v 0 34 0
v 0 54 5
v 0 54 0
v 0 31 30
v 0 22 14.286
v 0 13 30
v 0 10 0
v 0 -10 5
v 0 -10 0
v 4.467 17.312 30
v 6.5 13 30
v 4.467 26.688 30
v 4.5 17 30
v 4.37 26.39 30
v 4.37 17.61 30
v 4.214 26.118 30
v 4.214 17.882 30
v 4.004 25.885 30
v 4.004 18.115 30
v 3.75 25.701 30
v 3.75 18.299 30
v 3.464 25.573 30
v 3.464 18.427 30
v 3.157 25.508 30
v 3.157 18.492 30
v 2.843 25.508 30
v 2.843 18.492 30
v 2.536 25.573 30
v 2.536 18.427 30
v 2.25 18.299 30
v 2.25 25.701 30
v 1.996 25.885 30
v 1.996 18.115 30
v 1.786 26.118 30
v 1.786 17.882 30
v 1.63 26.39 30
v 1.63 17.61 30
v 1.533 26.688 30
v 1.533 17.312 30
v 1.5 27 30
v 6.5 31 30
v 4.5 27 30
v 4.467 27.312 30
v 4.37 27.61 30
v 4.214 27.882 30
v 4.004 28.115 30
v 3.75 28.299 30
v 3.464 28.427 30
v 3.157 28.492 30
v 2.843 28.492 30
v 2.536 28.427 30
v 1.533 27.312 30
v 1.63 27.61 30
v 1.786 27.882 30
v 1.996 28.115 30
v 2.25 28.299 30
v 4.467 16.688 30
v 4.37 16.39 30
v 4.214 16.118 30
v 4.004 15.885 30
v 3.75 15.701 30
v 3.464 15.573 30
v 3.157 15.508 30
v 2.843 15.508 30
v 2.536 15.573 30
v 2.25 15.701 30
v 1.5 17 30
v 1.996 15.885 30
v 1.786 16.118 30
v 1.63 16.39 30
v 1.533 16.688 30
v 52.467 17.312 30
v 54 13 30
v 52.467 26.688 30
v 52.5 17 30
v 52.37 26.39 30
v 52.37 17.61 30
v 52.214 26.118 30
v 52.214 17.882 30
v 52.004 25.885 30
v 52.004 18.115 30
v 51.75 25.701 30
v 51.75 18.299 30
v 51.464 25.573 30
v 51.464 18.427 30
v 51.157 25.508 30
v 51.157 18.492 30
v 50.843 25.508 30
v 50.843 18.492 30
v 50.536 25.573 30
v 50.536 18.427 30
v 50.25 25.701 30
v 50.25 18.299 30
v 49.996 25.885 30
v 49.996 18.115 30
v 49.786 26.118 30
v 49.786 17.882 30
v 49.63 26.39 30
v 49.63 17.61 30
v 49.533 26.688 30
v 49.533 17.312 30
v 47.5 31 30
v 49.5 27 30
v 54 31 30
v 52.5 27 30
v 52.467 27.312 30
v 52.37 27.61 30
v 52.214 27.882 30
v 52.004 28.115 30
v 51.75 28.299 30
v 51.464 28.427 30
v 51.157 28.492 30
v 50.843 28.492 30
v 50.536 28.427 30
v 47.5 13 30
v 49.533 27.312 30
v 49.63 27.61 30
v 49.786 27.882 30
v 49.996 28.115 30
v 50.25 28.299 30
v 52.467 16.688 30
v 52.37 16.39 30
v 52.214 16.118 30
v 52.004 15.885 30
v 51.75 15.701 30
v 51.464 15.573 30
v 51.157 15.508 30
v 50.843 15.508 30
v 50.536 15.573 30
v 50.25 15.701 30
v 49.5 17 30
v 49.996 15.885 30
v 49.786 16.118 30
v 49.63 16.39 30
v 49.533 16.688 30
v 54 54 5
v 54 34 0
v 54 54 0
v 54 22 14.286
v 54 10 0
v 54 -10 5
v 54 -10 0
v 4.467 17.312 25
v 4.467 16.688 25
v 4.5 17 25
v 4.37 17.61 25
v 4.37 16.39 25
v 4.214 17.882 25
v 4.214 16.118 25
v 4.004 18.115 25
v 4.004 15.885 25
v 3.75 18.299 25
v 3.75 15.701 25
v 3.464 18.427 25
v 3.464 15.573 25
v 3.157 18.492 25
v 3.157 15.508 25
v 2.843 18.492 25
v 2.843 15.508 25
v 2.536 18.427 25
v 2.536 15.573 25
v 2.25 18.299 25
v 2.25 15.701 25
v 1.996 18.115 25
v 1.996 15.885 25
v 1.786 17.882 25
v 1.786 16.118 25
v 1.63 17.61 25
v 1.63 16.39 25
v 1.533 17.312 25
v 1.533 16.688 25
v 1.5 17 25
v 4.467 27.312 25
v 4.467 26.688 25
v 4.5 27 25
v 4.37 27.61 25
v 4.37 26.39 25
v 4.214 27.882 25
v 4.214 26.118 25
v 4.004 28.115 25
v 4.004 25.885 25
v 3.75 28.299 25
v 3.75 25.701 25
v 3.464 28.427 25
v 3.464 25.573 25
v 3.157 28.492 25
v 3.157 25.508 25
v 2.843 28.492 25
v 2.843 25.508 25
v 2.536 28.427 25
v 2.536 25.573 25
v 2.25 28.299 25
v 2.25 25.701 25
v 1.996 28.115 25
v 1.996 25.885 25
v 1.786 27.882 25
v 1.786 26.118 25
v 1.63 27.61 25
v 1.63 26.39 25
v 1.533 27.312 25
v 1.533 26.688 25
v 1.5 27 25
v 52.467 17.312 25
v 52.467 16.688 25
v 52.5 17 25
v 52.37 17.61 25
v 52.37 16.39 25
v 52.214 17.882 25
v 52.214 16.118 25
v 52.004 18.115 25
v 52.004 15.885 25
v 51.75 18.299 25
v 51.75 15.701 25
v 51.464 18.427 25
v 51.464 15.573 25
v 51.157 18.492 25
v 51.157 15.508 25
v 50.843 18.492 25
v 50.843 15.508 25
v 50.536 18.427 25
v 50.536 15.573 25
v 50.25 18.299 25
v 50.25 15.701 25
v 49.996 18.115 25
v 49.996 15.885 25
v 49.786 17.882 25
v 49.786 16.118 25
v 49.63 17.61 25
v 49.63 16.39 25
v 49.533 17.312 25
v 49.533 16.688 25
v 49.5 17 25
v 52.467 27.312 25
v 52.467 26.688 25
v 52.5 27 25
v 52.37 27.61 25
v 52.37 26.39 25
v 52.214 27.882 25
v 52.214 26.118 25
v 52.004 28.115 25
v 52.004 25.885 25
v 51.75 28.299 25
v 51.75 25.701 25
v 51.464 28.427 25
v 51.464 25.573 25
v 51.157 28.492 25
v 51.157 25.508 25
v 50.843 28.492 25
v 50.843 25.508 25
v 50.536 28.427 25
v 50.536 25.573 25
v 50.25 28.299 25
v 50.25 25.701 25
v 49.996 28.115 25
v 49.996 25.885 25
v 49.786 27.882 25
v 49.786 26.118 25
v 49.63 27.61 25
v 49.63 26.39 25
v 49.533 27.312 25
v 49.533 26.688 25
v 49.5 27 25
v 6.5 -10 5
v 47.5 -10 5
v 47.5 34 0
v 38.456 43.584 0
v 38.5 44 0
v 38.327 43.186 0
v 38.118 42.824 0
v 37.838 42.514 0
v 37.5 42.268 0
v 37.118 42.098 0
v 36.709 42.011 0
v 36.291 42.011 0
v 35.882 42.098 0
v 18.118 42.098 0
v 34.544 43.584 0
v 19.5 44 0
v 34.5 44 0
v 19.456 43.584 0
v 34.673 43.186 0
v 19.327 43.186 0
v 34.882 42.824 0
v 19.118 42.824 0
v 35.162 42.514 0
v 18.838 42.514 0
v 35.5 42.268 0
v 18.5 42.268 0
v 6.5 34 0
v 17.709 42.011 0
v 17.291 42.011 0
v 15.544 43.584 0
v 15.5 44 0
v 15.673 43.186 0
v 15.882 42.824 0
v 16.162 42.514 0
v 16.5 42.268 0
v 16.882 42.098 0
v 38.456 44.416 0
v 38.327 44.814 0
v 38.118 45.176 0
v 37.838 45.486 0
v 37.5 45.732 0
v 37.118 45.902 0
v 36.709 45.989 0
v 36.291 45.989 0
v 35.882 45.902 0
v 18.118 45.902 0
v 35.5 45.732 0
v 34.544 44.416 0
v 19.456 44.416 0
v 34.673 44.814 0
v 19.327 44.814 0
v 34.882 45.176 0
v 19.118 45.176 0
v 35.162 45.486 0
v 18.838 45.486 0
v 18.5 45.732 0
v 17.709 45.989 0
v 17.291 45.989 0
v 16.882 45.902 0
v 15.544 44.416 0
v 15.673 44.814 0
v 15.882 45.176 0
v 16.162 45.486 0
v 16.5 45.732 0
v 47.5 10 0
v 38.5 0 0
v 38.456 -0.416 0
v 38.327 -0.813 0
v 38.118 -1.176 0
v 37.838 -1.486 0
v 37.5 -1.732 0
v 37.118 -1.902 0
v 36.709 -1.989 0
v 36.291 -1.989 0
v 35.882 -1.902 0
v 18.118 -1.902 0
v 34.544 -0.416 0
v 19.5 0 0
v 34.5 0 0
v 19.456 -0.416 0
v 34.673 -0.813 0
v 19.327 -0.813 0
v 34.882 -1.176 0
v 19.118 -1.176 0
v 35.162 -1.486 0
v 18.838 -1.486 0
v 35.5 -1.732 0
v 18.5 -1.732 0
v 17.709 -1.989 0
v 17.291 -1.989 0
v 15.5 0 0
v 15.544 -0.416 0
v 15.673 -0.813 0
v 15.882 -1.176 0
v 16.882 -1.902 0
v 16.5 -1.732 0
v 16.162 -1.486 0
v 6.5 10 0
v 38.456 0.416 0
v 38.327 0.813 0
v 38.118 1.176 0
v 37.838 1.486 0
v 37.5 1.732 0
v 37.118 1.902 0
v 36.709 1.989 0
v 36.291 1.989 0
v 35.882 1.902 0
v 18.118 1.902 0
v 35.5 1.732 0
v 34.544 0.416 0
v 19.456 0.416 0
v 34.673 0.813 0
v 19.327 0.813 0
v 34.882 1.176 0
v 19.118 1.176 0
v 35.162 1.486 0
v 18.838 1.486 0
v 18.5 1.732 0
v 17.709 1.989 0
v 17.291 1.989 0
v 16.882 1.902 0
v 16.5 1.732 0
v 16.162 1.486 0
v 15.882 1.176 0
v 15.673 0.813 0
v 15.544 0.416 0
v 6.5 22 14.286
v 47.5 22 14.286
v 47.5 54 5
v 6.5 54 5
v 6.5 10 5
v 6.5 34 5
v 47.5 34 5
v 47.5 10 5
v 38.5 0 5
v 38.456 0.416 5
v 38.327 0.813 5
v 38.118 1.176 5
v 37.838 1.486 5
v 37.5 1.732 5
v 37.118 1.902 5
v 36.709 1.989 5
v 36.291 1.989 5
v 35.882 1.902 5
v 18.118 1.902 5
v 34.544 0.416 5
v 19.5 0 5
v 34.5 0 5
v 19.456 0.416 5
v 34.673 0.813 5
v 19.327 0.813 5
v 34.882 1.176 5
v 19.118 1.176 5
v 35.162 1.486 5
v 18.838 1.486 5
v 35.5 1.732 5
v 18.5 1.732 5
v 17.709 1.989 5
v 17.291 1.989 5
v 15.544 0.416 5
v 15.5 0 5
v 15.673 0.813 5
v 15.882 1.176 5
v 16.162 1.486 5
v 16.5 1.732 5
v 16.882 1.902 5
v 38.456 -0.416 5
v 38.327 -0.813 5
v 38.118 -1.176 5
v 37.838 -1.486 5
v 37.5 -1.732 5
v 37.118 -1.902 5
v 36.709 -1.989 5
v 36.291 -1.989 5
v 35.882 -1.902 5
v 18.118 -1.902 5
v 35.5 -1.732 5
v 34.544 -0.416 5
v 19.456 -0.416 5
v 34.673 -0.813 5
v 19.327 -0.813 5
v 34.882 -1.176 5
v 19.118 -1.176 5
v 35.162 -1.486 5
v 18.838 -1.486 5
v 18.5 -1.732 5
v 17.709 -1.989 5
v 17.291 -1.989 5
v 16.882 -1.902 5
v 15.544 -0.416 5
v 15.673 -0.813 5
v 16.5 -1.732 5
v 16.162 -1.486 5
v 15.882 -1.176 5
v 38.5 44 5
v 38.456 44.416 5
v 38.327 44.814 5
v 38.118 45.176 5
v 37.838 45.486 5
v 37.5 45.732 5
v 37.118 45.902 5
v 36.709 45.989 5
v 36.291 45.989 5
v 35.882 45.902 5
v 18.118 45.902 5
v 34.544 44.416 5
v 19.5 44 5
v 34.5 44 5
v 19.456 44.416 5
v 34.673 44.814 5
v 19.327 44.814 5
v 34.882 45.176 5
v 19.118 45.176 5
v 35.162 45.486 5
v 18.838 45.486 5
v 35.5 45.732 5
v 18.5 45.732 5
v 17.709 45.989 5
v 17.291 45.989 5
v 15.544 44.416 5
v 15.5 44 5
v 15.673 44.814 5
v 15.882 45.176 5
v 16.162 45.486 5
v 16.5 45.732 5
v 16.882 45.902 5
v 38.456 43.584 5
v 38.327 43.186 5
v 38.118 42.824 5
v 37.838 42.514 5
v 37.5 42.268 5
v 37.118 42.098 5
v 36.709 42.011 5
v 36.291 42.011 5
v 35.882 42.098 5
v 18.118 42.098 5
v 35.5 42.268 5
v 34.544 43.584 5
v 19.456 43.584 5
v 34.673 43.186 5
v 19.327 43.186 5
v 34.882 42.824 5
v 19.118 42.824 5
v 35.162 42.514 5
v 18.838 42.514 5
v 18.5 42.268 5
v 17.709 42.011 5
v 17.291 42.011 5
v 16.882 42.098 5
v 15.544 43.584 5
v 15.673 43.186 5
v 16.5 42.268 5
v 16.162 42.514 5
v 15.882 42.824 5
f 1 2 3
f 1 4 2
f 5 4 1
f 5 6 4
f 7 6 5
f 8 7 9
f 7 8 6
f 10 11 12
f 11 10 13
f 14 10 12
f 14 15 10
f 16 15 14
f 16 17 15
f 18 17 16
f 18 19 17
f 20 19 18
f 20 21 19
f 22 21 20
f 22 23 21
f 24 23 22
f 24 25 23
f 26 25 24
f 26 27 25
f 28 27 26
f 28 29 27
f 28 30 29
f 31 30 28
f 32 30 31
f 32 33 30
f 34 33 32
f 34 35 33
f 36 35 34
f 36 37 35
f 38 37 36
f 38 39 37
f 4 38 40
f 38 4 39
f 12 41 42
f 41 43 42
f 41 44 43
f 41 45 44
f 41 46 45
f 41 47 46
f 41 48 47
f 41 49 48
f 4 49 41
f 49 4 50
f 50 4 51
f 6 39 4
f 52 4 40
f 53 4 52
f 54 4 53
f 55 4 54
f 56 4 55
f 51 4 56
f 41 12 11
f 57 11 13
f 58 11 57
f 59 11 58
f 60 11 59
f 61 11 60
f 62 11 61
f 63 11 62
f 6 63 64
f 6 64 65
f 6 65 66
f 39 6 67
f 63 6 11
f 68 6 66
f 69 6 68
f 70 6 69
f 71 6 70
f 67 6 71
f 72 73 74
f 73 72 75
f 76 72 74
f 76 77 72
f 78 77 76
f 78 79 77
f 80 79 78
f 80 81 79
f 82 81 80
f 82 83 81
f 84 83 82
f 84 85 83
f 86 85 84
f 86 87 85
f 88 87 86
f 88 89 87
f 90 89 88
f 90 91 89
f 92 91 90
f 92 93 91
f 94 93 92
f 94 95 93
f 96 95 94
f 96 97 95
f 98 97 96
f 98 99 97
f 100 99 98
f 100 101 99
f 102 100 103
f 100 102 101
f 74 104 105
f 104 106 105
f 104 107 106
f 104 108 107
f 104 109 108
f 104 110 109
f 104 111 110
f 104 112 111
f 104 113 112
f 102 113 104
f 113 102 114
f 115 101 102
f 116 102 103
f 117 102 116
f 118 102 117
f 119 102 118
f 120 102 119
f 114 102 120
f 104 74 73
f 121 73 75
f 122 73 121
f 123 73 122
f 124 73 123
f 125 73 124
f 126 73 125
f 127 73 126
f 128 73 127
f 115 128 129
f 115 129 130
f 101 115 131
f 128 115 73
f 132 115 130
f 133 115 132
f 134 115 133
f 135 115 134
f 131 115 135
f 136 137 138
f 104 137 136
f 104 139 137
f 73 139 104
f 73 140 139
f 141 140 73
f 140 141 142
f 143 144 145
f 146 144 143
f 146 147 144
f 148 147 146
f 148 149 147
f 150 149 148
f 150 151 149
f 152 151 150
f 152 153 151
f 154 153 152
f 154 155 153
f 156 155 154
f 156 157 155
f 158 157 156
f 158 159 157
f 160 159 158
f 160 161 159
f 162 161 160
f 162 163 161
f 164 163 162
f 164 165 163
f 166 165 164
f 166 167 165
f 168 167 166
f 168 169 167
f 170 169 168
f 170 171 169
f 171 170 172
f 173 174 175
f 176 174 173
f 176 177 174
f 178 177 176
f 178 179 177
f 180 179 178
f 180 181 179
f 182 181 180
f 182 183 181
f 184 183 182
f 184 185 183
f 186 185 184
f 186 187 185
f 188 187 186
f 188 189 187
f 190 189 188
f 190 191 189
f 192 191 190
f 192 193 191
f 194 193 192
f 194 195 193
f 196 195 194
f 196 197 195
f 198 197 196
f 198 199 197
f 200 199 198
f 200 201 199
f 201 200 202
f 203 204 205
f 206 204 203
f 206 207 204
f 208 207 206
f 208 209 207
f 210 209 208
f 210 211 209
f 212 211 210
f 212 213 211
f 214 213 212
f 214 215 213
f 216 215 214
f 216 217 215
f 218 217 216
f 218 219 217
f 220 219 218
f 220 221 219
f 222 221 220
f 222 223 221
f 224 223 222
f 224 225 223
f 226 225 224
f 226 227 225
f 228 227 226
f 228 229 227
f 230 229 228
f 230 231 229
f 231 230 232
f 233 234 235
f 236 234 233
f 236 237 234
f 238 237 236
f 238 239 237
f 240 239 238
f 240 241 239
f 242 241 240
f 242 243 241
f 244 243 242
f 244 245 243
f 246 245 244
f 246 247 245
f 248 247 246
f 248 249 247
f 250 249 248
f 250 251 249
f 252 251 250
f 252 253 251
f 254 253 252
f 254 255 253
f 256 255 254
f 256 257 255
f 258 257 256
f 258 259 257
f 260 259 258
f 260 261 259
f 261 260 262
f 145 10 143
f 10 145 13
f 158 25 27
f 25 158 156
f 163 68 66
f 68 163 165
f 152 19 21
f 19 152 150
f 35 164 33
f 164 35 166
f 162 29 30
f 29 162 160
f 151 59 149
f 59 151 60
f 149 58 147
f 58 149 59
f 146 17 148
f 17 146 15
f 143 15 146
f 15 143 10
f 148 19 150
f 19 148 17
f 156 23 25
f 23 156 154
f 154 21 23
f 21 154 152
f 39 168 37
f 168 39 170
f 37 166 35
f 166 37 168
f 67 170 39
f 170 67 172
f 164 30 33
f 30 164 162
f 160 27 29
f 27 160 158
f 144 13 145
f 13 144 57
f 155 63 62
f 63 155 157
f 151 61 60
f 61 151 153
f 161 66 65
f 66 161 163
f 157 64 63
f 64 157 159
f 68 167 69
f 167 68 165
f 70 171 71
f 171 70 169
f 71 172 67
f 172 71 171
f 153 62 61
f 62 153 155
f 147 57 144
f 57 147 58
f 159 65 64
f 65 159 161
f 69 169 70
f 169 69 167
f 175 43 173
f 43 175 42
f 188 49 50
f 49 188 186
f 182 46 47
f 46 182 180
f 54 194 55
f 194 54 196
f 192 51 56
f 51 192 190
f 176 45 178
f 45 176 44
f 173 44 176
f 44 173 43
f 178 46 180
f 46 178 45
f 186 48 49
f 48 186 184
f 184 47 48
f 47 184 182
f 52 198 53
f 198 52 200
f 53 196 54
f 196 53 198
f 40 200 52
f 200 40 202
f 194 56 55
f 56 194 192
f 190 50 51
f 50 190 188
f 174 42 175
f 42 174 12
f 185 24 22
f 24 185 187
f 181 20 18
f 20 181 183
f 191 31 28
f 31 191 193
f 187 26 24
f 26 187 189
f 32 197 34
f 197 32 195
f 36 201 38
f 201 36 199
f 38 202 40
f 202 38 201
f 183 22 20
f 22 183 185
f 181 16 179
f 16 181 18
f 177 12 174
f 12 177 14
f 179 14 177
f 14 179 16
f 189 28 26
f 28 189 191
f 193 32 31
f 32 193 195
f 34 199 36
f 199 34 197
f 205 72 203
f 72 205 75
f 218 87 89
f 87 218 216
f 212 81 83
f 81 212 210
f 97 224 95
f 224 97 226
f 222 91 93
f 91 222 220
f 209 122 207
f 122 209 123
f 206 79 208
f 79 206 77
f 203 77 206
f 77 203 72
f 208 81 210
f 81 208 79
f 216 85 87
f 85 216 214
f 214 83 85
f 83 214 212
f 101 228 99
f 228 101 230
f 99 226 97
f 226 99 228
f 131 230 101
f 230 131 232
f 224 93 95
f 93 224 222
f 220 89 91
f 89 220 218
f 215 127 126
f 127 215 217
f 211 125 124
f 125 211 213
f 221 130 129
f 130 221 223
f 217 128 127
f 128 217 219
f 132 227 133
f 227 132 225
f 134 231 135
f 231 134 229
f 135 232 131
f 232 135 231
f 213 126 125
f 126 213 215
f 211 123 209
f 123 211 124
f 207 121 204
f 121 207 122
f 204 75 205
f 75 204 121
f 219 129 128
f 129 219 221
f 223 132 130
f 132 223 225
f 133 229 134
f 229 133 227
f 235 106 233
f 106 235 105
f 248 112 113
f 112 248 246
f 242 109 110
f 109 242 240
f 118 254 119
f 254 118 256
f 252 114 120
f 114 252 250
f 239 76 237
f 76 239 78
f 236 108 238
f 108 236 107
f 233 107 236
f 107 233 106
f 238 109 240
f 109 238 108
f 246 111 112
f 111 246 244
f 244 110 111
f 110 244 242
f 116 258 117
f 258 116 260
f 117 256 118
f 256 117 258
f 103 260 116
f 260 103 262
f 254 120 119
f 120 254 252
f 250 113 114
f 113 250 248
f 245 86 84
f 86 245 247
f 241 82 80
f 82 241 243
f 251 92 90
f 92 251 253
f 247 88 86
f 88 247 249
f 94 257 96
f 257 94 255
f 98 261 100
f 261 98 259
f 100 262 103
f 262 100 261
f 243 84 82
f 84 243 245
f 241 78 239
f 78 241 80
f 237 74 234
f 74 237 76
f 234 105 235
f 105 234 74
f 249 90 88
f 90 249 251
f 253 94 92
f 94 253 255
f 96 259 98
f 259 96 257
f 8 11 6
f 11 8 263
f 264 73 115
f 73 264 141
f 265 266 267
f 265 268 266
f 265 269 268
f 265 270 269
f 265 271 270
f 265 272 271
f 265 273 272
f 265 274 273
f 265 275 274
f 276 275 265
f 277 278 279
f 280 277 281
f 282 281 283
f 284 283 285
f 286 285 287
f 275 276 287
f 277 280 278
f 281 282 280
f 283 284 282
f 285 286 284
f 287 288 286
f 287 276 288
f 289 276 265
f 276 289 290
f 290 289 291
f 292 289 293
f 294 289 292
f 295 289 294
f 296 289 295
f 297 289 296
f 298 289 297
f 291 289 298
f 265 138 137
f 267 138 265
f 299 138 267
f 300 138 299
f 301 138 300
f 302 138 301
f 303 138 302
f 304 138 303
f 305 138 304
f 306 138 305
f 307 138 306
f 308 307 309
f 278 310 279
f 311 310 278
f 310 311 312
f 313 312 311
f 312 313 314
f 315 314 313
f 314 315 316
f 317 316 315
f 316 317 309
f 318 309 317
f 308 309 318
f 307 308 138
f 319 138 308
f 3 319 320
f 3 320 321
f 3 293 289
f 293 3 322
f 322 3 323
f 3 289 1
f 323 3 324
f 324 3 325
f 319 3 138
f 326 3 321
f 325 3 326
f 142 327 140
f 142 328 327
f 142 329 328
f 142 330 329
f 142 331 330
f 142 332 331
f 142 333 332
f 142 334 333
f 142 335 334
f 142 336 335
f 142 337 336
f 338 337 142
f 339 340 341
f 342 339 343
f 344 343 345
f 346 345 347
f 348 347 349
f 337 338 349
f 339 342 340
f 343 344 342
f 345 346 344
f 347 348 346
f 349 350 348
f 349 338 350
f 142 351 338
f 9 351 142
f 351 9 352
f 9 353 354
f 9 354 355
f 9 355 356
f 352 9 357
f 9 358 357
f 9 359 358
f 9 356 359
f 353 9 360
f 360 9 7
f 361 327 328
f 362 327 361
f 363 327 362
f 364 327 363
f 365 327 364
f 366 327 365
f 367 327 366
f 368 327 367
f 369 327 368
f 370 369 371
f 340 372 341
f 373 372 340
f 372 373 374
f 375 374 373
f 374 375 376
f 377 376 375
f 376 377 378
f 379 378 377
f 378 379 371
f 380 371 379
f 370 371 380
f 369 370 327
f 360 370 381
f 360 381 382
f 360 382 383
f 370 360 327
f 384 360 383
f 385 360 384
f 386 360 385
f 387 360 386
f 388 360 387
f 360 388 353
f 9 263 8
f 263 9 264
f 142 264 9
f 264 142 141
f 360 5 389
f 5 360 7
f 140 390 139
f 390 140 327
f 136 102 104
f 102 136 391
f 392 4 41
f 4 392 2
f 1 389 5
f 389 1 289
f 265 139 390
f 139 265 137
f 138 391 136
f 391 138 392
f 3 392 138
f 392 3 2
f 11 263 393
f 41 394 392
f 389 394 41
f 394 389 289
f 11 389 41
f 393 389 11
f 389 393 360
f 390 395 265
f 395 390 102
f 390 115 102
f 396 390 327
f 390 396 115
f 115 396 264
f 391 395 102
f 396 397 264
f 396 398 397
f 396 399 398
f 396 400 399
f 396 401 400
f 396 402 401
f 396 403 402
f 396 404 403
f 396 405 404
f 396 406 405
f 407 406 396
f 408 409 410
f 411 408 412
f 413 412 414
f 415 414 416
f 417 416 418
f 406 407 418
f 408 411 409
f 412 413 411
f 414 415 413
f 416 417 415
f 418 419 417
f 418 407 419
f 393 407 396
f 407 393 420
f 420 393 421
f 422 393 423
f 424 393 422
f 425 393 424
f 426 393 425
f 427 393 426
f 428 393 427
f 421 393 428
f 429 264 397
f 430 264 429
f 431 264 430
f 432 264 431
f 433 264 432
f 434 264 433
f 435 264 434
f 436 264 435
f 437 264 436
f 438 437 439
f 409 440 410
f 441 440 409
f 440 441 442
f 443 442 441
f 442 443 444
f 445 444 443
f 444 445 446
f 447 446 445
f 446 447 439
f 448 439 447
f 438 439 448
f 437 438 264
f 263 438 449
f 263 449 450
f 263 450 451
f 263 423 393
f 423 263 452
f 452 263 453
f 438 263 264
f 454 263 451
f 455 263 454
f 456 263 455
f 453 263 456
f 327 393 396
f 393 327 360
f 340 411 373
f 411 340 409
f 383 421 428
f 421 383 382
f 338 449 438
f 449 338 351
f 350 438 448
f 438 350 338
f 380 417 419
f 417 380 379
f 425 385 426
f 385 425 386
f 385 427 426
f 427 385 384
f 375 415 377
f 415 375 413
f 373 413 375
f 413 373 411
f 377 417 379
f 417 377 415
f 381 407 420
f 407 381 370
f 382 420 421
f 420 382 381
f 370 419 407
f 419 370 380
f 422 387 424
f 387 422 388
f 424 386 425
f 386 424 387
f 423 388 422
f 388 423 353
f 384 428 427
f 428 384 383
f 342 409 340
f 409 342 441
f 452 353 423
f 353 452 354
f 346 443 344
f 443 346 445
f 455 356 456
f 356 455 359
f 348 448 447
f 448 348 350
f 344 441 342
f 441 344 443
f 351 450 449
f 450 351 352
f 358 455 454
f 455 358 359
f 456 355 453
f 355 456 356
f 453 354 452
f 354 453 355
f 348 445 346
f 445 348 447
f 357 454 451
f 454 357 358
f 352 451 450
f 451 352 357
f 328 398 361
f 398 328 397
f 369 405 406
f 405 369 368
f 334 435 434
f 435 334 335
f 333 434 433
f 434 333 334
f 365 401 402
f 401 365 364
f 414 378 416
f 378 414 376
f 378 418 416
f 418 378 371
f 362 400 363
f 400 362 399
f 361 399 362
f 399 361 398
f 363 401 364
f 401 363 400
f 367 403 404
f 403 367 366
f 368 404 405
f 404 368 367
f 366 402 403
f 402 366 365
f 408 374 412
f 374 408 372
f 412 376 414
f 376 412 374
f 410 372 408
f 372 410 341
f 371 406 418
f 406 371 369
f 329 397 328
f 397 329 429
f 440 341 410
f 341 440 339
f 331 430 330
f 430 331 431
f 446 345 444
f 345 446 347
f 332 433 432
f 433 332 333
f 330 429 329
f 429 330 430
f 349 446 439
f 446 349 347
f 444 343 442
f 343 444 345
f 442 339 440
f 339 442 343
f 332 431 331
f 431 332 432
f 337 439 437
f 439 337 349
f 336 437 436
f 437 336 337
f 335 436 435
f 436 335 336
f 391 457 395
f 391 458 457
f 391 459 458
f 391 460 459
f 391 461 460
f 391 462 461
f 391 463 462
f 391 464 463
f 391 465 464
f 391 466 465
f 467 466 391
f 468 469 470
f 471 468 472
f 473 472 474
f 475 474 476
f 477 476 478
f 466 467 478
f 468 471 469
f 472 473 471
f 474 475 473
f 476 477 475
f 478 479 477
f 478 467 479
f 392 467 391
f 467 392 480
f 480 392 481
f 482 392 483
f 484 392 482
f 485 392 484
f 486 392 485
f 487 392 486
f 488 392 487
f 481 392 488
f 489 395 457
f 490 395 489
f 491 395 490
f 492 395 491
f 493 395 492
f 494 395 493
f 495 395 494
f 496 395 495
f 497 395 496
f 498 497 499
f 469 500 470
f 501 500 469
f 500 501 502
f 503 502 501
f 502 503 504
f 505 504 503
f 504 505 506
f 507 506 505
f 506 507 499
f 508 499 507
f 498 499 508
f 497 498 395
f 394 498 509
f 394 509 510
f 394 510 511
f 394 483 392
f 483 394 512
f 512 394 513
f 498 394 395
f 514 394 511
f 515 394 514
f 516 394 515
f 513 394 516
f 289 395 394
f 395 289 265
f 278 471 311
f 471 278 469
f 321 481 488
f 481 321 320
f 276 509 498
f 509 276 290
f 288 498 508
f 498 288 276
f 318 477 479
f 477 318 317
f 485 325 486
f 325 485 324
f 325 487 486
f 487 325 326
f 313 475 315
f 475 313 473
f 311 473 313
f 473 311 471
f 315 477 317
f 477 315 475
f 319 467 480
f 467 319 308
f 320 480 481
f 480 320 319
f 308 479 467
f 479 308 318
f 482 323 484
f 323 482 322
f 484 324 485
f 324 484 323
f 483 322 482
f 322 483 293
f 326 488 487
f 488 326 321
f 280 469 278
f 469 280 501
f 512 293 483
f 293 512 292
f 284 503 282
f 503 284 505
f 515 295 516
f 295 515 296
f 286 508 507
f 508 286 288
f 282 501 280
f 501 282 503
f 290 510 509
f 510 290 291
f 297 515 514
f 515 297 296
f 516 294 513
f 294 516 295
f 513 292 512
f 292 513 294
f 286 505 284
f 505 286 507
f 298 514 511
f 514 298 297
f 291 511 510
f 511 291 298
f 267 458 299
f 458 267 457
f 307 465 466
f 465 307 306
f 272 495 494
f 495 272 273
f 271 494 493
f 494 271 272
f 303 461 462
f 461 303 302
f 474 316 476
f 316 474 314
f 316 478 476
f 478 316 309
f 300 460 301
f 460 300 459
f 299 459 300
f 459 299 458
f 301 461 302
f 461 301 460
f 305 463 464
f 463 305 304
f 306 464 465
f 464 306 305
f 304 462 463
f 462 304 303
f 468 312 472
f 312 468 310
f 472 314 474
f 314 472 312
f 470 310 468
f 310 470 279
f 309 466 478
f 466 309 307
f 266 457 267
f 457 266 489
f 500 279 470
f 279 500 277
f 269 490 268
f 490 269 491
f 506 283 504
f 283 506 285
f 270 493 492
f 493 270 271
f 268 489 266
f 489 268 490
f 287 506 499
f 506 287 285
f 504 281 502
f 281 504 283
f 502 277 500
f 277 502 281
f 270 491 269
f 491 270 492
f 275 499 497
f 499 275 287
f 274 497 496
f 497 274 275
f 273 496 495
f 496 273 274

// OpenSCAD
//general
$fn = 30;                        //convexity of general curved faces
thickness = 5;                   //thickness of the flat parts
length = 54;

//bottom plate (feet)
plateHoleDiameter = 4;            //diameter of holes in metal bottom plate
plateHoleWidth = 19;             //shortest distance between the pairs of holes in plate
plateHoleLength = 44;            //long distance between the pairs of holes in botto
plateFeetWidth = 20;             //width of the pads that connect the short distanced screws
plateFeetLength = length;            //length of the feet
//servo pad
servoHoleDiameter = 3;           //diamter of holes for servo attachment
servoHoleWidth = 10;             //width of short distance between hole so same side of servo
servoHoleLength = 48;            //length of long distance between holes on either side of servo
servoPadWidth = 18;              //width of servo pad
servoPadLength = length;         //length of servo pad
servoPadHeight = 25;             //height of servo pad
servoLength = 41;

module foot(){
   translate([0, plateFeetWidth/-2, 0])
   difference(){
      cube([plateFeetLength, plateFeetWidth, thickness]);
      translate([plateFeetLength/2 - plateHoleWidth/2, plateFeetWidth/2, 0])
      cylinder(h=thickness, d=plateHoleDiameter);
      translate([plateFeetLength/2 + plateHoleWidth/2, plateFeetWidth/2, 0])
      cylinder(h=thickness, d=plateHoleDiameter);
   }
}


module servoPad(){
   difference(){
      cube([servoPadLength, servoPadWidth, thickness]);
      translate([servoPadLength/2 - servoHoleLength/2, servoPadWidth/2 - servoHoleWidth/2, 0])
      cylinder(d = servoHoleDiameter, h = thickness);
      translate([servoPadLength/2 - servoHoleLength/2, servoPadWidth/2 + servoHoleWidth/2, 0])
      cylinder(d = servoHoleDiameter, h = thickness);
      translate([servoPadLength/2 + servoHoleLength/2, servoPadWidth/2 - servoHoleWidth/2, 0])
      cylinder(d = servoHoleDiameter, h = thickness);
      translate([servoPadLength/2 + servoHoleLength/2, servoPadWidth/2 + servoHoleWidth/2, 0])
      cylinder(d = servoHoleDiameter, h = thickness);
   }   
}

module wall(){
   hull(){
      translate([0,plateFeetWidth/-2, 0])
      cube([plateFeetLength, plateFeetWidth, thickness]);
      translate([0,plateHoleLength/2 - servoPadWidth/2, servoPadHeight])
      cube([servoPadLength, servoPadWidth, thickness]);
   }  
}

module base(){
    difference(){
       union(){
          difference(){
             union(){
                wall();
                translate([0, plateHoleLength, 0])
                mirror([0,1,0])
                wall();
             }
             translate([0, plateHoleLength/2 - servoPadWidth/2, servoPadHeight])
             cube([servoPadLength, servoPadWidth, thickness]);
          }
          translate([0, plateHoleLength/2 - servoPadWidth/2, servoPadHeight])
          servoPad();
       }
       translate([(length - servoLength) / 2 ,-0.5 * plateHoleLength, 0])
       cube([servoLength, plateHoleLength*2, servoPadHeight * 2]);   
    }

    foot();
    translate([0, plateHoleLength, 0])
    foot();
}

base();
